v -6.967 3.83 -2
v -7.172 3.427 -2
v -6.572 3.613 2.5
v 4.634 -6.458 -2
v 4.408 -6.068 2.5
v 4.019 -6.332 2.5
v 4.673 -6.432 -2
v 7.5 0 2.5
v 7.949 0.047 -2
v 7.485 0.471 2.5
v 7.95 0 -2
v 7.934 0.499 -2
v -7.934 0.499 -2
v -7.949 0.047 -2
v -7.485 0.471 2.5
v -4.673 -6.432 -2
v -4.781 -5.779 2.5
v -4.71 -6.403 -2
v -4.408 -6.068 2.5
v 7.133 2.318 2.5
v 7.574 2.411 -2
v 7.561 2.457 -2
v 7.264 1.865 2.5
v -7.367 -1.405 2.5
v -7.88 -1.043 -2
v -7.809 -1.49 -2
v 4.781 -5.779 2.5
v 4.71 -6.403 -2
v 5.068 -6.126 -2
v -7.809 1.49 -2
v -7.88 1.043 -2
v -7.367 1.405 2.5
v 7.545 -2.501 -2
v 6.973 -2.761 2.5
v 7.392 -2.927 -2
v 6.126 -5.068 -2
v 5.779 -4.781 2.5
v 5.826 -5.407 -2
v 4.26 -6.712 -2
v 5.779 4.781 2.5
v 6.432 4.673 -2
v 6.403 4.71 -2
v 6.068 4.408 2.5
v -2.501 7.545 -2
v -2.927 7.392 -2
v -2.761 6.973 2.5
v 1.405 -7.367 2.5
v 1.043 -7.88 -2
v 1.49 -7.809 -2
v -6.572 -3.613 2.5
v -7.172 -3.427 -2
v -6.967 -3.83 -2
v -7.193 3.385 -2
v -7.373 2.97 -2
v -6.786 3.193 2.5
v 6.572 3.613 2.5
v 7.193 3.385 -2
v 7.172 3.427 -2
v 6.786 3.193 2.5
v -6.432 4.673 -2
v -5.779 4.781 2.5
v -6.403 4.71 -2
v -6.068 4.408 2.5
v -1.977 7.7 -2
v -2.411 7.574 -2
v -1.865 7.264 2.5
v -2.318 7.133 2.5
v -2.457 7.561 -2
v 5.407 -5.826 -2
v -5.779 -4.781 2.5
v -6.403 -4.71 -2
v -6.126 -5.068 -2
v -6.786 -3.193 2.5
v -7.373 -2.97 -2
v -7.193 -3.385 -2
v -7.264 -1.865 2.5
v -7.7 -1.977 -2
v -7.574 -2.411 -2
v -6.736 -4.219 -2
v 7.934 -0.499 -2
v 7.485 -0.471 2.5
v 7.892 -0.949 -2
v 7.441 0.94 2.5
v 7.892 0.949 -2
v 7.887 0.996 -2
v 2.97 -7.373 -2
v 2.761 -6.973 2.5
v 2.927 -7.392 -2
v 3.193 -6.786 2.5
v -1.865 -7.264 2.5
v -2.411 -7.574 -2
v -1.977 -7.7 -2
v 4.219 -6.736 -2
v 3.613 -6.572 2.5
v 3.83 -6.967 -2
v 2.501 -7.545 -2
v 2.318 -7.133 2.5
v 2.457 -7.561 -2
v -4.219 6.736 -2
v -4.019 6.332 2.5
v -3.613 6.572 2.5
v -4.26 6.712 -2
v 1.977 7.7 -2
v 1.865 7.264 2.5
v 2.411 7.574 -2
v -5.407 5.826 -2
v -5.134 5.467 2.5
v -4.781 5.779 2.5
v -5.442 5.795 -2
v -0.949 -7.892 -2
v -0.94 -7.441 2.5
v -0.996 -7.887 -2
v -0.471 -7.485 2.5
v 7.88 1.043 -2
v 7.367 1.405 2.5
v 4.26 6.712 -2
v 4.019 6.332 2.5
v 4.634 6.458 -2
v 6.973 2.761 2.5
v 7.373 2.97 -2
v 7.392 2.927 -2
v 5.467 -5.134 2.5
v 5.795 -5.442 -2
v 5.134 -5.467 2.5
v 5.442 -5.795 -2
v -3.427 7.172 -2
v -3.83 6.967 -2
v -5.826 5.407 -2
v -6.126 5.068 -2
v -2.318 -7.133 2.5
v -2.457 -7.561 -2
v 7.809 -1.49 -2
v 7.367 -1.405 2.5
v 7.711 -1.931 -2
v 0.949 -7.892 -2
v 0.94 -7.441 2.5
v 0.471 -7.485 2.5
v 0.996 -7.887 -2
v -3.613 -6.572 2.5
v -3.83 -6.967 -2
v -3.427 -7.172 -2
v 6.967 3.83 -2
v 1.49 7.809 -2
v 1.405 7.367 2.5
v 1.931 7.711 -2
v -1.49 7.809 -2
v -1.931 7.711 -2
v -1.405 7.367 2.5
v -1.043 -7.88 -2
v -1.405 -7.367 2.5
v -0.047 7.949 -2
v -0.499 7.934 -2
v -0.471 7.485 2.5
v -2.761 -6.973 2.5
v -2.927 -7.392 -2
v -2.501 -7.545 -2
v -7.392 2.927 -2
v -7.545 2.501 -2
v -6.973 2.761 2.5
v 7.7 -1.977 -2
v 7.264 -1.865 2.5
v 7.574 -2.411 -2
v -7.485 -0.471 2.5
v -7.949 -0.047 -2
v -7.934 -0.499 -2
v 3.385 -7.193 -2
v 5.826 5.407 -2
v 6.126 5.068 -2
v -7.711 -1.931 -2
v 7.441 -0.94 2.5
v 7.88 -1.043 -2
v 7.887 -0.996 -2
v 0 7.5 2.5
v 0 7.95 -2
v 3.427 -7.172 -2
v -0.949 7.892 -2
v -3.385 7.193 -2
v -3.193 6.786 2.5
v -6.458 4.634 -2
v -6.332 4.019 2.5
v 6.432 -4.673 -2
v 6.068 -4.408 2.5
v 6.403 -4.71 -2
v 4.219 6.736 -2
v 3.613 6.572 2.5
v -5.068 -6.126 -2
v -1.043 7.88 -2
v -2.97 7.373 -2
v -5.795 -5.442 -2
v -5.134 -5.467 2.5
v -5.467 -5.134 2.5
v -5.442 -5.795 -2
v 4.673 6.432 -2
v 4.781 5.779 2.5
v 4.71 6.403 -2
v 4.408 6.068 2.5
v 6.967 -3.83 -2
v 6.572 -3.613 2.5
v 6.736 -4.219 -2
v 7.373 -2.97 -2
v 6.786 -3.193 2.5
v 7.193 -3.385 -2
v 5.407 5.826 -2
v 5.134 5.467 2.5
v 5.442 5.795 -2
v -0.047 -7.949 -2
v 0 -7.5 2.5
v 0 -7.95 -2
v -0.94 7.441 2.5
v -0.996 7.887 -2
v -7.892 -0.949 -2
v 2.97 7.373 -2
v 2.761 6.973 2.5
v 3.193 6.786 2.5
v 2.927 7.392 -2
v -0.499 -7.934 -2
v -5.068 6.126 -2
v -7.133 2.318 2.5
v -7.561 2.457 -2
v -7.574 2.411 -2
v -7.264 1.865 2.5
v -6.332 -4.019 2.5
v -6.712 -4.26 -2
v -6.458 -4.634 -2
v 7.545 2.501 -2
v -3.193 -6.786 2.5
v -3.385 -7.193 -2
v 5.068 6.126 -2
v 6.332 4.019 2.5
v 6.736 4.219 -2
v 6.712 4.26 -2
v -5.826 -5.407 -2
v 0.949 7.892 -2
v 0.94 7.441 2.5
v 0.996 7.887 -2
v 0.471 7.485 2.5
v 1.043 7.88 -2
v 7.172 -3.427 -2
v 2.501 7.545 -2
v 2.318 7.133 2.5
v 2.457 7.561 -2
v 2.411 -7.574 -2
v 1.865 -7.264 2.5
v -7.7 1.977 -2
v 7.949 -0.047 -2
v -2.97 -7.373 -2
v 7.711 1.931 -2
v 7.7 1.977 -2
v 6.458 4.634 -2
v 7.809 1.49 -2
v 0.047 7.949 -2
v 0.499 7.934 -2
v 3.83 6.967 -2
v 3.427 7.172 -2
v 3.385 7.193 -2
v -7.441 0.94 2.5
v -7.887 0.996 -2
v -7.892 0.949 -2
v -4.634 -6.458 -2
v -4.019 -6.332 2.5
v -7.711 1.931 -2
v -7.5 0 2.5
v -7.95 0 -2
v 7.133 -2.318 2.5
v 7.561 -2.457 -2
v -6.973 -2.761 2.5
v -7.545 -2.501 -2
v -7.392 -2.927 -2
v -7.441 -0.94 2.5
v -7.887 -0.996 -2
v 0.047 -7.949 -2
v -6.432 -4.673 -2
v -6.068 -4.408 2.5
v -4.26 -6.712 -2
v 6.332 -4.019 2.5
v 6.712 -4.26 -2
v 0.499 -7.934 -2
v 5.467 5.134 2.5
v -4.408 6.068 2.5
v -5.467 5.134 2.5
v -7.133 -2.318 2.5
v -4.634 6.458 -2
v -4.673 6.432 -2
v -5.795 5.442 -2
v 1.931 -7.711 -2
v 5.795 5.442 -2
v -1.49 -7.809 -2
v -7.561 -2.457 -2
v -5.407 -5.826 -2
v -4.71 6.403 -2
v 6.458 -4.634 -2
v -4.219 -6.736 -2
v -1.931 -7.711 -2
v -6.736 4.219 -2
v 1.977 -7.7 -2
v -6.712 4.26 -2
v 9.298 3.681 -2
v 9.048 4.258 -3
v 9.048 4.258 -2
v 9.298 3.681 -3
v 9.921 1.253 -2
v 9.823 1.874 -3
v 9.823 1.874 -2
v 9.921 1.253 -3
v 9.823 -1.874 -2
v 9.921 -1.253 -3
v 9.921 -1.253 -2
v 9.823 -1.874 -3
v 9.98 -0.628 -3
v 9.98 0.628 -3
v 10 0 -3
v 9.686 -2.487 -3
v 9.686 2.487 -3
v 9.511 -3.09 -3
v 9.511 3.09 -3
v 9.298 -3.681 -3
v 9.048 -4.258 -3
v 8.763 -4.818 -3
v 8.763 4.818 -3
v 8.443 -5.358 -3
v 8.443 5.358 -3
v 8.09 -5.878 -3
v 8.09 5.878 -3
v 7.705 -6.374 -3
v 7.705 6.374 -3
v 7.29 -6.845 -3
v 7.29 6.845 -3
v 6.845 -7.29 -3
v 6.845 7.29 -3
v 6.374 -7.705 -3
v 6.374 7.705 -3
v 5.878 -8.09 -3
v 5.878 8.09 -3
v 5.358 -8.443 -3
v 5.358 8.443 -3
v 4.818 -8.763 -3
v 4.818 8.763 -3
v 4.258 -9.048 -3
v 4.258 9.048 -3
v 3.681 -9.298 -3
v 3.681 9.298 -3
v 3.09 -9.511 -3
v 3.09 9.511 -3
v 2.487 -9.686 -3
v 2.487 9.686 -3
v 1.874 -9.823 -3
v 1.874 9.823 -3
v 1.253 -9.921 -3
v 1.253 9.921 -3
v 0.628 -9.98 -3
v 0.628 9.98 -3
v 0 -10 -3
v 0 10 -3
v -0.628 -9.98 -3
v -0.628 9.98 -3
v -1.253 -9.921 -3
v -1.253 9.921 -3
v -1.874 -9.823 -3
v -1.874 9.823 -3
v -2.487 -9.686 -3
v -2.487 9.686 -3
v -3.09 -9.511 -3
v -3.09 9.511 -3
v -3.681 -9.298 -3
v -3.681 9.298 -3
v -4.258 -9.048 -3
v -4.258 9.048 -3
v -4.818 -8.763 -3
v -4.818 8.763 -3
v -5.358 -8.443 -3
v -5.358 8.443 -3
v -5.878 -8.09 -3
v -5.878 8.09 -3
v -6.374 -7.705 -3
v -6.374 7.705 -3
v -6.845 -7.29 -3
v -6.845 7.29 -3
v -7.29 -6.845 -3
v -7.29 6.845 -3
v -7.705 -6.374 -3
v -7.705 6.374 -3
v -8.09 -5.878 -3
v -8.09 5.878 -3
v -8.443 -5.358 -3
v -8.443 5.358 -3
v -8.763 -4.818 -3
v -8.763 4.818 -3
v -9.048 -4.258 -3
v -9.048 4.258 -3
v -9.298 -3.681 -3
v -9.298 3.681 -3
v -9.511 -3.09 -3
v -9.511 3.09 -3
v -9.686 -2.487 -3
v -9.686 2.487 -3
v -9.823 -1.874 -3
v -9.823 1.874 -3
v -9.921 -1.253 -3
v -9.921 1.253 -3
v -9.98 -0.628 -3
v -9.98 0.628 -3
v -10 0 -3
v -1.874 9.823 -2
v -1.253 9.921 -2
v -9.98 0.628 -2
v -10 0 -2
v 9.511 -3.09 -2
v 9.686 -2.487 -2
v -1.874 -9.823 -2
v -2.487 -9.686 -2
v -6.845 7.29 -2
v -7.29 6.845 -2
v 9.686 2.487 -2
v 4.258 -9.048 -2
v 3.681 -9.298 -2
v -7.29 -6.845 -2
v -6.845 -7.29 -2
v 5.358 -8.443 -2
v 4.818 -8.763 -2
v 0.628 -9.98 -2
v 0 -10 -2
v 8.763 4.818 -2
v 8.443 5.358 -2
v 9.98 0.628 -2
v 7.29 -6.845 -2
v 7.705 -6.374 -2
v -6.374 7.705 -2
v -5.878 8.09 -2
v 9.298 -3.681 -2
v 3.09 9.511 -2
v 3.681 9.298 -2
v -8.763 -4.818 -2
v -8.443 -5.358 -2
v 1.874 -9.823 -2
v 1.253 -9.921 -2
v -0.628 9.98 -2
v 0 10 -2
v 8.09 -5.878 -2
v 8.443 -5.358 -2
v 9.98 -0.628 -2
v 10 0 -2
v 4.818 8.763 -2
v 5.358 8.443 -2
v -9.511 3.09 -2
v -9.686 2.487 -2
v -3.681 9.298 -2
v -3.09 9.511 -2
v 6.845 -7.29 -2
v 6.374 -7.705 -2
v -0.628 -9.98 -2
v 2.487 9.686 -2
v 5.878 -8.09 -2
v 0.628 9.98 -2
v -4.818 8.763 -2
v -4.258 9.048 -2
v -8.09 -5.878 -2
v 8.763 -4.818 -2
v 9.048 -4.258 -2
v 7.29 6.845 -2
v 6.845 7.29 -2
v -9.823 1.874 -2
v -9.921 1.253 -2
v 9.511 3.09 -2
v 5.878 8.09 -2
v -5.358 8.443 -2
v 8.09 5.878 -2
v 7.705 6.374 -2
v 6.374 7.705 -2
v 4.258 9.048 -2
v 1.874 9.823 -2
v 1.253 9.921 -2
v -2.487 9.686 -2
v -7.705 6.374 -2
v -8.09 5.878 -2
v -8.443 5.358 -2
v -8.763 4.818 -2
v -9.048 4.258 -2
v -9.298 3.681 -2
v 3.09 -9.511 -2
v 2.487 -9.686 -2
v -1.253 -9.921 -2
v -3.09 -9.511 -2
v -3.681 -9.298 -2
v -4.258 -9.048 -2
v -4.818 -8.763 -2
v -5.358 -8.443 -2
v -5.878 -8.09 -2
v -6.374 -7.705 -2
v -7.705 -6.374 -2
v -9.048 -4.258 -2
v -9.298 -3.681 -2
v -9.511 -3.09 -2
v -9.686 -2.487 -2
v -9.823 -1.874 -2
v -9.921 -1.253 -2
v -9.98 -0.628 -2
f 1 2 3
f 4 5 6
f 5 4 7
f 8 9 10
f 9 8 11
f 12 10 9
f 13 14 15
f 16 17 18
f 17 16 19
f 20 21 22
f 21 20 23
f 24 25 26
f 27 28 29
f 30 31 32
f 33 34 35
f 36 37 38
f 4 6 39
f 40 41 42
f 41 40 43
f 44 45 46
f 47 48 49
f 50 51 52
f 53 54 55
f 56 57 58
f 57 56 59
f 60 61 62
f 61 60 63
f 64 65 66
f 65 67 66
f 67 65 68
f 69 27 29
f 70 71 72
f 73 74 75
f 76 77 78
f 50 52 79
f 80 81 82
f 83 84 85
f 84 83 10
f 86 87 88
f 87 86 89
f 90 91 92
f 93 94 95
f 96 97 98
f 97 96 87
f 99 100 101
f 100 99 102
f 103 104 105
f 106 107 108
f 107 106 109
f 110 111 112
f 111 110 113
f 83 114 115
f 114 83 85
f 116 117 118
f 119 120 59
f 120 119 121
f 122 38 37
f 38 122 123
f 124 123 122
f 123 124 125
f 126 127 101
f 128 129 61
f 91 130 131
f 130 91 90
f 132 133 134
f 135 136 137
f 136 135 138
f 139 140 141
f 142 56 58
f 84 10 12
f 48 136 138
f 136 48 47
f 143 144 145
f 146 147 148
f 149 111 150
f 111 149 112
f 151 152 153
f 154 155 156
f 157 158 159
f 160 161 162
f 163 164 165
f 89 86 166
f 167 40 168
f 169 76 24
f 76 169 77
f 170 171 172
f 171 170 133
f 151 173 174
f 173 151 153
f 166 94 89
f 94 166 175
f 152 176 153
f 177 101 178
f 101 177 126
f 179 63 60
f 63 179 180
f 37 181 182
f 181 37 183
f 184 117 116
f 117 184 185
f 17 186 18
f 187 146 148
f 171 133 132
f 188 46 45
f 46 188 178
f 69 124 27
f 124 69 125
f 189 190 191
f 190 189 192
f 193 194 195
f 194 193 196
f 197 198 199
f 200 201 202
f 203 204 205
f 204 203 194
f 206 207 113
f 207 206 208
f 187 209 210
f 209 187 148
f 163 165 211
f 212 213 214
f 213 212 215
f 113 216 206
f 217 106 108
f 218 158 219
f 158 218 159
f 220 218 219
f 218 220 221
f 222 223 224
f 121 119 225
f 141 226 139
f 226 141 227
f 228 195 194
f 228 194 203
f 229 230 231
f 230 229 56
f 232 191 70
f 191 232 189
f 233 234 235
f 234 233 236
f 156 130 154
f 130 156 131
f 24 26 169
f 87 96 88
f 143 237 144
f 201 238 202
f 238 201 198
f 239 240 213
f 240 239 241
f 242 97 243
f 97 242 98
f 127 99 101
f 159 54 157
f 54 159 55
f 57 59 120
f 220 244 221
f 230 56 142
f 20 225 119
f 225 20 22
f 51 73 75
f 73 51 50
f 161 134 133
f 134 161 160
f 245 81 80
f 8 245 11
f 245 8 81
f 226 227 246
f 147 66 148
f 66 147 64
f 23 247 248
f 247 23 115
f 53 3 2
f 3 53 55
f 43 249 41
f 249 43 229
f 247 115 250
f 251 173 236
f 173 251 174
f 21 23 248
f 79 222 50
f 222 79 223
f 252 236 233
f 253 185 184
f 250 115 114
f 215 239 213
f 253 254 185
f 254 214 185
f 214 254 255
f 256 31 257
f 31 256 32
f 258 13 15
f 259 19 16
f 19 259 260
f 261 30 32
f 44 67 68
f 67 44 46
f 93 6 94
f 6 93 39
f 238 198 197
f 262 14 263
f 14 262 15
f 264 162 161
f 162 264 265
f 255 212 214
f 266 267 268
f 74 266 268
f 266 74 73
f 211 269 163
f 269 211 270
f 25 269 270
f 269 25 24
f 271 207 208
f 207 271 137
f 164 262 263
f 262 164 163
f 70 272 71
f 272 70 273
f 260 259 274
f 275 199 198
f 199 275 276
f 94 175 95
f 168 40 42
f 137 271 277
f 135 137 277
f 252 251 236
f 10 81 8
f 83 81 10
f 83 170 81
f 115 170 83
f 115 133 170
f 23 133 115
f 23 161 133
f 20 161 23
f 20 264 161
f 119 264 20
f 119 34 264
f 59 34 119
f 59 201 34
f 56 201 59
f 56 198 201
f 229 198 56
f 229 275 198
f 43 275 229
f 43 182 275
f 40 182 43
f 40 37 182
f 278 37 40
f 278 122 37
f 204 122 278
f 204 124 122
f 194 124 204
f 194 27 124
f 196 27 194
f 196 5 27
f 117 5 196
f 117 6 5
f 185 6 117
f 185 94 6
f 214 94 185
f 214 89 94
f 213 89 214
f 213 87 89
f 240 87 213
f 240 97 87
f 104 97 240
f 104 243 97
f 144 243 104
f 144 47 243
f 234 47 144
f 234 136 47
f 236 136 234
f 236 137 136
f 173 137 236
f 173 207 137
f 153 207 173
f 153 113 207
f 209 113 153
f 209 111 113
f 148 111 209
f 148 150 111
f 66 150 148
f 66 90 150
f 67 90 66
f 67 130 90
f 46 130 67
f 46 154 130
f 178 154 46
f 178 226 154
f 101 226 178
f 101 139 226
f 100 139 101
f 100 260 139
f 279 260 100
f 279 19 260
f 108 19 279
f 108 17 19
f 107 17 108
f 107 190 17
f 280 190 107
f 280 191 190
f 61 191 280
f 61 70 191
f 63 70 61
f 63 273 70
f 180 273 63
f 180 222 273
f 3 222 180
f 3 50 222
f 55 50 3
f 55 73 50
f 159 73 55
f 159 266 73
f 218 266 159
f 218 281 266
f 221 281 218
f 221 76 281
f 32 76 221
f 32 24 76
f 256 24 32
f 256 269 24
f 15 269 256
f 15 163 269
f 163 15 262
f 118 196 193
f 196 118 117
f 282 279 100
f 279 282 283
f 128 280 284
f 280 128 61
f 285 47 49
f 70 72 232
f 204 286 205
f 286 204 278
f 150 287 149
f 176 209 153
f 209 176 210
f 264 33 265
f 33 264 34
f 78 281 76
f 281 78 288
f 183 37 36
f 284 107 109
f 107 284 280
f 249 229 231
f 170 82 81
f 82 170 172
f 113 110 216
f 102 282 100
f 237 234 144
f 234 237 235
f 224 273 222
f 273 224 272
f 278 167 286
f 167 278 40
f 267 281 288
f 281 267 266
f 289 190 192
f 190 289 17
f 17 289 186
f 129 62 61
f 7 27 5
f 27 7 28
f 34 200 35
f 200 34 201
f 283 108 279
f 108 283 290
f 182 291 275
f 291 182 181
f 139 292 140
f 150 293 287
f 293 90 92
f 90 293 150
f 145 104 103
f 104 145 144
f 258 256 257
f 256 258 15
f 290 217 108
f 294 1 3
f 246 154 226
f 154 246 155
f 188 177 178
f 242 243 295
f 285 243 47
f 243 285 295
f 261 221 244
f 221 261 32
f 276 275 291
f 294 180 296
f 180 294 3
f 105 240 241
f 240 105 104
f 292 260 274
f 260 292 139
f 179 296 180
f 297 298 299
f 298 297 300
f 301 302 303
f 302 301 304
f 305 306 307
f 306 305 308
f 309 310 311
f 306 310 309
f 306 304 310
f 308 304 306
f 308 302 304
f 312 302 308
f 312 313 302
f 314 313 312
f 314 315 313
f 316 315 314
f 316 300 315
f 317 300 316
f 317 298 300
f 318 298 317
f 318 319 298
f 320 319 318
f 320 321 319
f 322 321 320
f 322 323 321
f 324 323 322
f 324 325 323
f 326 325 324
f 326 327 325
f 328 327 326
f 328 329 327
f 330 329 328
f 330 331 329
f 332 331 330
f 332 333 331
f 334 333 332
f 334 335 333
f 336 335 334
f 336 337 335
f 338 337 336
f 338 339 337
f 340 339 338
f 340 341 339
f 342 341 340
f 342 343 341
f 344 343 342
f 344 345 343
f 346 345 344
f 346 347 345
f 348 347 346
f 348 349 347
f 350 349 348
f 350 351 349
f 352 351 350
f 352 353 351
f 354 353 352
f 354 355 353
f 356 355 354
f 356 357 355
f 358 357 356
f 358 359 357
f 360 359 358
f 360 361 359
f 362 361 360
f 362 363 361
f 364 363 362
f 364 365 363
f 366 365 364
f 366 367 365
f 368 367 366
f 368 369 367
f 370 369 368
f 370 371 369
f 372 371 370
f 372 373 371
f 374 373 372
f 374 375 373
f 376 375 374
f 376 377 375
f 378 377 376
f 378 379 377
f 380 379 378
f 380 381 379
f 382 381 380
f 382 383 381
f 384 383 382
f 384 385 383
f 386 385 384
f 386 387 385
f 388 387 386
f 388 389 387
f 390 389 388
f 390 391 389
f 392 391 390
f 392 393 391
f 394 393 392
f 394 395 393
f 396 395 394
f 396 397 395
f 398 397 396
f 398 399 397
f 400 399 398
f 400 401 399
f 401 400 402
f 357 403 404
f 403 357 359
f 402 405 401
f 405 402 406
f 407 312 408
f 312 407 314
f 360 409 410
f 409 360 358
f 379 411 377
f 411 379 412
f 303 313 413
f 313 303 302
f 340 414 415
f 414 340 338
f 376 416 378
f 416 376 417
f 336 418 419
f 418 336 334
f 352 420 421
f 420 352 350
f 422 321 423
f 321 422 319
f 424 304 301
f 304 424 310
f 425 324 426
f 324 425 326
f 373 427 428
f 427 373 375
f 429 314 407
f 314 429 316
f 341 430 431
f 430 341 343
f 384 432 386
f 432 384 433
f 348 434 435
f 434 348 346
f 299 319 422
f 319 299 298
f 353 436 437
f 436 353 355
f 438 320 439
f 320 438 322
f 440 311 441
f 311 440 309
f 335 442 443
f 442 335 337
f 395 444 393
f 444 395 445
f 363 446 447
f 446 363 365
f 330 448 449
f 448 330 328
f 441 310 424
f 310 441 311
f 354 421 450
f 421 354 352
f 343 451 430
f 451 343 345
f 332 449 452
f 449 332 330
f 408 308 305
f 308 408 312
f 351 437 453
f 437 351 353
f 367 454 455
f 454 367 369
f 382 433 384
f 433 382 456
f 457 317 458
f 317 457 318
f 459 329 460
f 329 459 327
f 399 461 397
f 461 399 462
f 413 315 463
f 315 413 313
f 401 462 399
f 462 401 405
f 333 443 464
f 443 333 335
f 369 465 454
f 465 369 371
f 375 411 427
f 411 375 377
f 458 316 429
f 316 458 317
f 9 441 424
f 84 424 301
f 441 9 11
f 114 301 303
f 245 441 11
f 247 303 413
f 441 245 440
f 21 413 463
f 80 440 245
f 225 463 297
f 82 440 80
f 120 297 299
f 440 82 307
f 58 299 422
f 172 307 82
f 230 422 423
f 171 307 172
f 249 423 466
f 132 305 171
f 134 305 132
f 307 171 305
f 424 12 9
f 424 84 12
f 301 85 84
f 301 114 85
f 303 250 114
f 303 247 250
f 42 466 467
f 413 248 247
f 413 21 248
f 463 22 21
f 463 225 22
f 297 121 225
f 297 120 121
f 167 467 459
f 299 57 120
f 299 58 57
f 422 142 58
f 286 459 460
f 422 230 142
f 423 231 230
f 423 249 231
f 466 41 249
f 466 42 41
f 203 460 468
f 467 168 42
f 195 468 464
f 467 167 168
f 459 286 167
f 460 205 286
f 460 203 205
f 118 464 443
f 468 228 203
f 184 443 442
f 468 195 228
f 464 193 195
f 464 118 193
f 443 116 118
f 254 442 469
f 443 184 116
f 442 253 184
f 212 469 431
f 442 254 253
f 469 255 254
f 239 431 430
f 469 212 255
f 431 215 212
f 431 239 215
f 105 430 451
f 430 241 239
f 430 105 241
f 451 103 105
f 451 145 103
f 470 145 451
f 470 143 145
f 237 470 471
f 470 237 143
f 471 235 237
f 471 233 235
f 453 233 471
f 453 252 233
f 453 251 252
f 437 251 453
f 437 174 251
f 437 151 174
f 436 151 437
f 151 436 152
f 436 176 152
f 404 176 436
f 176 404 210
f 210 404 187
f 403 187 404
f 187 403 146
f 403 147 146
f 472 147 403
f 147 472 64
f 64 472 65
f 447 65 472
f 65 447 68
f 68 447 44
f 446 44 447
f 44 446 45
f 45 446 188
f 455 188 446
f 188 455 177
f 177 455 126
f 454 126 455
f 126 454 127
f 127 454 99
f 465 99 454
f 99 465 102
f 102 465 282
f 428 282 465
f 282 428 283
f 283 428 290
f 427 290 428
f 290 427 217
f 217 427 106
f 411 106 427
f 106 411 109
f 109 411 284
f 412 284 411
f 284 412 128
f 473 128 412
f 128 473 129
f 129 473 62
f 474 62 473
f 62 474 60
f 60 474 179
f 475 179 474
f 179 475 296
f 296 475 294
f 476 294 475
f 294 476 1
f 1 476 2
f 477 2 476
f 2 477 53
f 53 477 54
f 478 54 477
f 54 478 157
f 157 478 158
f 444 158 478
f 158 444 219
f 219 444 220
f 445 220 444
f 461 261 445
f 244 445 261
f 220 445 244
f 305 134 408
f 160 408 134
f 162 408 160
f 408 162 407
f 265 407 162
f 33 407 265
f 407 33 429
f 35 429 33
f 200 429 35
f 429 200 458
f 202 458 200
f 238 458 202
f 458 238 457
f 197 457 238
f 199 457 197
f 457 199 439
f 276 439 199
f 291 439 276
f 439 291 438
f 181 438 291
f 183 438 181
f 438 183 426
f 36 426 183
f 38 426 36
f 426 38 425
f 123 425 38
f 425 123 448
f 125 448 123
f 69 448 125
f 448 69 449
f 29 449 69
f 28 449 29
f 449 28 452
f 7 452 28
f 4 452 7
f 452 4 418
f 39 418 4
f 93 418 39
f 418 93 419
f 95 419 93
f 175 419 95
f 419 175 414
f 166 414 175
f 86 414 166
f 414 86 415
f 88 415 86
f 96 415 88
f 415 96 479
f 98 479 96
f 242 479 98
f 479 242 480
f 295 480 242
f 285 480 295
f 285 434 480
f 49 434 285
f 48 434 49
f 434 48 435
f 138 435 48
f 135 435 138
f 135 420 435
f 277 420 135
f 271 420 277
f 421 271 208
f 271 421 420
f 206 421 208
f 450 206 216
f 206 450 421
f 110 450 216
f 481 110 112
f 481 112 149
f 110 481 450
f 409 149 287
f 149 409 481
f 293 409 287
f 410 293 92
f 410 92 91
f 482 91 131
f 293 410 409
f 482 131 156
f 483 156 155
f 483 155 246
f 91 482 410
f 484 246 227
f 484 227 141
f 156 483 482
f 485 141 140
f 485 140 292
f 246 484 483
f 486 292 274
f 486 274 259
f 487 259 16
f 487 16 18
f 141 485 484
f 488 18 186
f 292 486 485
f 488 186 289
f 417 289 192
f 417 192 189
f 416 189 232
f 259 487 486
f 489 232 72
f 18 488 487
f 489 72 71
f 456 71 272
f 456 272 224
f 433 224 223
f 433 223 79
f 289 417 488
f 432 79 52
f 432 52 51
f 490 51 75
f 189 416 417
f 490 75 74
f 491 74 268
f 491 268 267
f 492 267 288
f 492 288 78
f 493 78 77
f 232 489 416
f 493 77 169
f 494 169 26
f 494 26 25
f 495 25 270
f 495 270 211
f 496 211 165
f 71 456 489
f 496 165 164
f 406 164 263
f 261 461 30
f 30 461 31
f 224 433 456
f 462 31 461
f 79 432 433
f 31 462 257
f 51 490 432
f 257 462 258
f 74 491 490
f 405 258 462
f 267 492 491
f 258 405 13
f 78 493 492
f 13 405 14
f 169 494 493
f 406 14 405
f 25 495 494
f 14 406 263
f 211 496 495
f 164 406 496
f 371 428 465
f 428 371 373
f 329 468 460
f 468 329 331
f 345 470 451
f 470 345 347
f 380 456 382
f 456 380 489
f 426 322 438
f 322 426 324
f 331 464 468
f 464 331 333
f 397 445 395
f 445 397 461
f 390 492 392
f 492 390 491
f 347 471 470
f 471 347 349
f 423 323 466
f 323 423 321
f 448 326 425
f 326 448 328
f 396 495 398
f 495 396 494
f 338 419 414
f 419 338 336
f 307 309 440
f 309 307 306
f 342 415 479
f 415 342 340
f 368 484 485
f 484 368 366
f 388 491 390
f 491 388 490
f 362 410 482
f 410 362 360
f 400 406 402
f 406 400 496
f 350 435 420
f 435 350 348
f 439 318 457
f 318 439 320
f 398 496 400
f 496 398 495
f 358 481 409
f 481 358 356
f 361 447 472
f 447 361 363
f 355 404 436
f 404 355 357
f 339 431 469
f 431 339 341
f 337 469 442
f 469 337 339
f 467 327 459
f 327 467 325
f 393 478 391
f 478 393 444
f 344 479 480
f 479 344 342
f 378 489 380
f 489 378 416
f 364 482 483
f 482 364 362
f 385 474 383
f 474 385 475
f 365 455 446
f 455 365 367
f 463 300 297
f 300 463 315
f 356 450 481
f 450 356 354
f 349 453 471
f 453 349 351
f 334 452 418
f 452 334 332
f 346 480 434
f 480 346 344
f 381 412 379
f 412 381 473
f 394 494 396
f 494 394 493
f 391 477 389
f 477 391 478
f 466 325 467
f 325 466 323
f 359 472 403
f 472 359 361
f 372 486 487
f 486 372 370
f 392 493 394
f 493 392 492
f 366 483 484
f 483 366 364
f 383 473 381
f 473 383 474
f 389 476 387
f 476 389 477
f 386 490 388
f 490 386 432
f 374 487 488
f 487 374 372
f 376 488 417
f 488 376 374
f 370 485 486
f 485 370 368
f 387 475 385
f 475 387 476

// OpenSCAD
cylinder (5, 8, 7.5, center=true, $fn=100);
translate([0,0,-2.5])
  cylinder (1, 10, 10, center=true, $fn=100);
